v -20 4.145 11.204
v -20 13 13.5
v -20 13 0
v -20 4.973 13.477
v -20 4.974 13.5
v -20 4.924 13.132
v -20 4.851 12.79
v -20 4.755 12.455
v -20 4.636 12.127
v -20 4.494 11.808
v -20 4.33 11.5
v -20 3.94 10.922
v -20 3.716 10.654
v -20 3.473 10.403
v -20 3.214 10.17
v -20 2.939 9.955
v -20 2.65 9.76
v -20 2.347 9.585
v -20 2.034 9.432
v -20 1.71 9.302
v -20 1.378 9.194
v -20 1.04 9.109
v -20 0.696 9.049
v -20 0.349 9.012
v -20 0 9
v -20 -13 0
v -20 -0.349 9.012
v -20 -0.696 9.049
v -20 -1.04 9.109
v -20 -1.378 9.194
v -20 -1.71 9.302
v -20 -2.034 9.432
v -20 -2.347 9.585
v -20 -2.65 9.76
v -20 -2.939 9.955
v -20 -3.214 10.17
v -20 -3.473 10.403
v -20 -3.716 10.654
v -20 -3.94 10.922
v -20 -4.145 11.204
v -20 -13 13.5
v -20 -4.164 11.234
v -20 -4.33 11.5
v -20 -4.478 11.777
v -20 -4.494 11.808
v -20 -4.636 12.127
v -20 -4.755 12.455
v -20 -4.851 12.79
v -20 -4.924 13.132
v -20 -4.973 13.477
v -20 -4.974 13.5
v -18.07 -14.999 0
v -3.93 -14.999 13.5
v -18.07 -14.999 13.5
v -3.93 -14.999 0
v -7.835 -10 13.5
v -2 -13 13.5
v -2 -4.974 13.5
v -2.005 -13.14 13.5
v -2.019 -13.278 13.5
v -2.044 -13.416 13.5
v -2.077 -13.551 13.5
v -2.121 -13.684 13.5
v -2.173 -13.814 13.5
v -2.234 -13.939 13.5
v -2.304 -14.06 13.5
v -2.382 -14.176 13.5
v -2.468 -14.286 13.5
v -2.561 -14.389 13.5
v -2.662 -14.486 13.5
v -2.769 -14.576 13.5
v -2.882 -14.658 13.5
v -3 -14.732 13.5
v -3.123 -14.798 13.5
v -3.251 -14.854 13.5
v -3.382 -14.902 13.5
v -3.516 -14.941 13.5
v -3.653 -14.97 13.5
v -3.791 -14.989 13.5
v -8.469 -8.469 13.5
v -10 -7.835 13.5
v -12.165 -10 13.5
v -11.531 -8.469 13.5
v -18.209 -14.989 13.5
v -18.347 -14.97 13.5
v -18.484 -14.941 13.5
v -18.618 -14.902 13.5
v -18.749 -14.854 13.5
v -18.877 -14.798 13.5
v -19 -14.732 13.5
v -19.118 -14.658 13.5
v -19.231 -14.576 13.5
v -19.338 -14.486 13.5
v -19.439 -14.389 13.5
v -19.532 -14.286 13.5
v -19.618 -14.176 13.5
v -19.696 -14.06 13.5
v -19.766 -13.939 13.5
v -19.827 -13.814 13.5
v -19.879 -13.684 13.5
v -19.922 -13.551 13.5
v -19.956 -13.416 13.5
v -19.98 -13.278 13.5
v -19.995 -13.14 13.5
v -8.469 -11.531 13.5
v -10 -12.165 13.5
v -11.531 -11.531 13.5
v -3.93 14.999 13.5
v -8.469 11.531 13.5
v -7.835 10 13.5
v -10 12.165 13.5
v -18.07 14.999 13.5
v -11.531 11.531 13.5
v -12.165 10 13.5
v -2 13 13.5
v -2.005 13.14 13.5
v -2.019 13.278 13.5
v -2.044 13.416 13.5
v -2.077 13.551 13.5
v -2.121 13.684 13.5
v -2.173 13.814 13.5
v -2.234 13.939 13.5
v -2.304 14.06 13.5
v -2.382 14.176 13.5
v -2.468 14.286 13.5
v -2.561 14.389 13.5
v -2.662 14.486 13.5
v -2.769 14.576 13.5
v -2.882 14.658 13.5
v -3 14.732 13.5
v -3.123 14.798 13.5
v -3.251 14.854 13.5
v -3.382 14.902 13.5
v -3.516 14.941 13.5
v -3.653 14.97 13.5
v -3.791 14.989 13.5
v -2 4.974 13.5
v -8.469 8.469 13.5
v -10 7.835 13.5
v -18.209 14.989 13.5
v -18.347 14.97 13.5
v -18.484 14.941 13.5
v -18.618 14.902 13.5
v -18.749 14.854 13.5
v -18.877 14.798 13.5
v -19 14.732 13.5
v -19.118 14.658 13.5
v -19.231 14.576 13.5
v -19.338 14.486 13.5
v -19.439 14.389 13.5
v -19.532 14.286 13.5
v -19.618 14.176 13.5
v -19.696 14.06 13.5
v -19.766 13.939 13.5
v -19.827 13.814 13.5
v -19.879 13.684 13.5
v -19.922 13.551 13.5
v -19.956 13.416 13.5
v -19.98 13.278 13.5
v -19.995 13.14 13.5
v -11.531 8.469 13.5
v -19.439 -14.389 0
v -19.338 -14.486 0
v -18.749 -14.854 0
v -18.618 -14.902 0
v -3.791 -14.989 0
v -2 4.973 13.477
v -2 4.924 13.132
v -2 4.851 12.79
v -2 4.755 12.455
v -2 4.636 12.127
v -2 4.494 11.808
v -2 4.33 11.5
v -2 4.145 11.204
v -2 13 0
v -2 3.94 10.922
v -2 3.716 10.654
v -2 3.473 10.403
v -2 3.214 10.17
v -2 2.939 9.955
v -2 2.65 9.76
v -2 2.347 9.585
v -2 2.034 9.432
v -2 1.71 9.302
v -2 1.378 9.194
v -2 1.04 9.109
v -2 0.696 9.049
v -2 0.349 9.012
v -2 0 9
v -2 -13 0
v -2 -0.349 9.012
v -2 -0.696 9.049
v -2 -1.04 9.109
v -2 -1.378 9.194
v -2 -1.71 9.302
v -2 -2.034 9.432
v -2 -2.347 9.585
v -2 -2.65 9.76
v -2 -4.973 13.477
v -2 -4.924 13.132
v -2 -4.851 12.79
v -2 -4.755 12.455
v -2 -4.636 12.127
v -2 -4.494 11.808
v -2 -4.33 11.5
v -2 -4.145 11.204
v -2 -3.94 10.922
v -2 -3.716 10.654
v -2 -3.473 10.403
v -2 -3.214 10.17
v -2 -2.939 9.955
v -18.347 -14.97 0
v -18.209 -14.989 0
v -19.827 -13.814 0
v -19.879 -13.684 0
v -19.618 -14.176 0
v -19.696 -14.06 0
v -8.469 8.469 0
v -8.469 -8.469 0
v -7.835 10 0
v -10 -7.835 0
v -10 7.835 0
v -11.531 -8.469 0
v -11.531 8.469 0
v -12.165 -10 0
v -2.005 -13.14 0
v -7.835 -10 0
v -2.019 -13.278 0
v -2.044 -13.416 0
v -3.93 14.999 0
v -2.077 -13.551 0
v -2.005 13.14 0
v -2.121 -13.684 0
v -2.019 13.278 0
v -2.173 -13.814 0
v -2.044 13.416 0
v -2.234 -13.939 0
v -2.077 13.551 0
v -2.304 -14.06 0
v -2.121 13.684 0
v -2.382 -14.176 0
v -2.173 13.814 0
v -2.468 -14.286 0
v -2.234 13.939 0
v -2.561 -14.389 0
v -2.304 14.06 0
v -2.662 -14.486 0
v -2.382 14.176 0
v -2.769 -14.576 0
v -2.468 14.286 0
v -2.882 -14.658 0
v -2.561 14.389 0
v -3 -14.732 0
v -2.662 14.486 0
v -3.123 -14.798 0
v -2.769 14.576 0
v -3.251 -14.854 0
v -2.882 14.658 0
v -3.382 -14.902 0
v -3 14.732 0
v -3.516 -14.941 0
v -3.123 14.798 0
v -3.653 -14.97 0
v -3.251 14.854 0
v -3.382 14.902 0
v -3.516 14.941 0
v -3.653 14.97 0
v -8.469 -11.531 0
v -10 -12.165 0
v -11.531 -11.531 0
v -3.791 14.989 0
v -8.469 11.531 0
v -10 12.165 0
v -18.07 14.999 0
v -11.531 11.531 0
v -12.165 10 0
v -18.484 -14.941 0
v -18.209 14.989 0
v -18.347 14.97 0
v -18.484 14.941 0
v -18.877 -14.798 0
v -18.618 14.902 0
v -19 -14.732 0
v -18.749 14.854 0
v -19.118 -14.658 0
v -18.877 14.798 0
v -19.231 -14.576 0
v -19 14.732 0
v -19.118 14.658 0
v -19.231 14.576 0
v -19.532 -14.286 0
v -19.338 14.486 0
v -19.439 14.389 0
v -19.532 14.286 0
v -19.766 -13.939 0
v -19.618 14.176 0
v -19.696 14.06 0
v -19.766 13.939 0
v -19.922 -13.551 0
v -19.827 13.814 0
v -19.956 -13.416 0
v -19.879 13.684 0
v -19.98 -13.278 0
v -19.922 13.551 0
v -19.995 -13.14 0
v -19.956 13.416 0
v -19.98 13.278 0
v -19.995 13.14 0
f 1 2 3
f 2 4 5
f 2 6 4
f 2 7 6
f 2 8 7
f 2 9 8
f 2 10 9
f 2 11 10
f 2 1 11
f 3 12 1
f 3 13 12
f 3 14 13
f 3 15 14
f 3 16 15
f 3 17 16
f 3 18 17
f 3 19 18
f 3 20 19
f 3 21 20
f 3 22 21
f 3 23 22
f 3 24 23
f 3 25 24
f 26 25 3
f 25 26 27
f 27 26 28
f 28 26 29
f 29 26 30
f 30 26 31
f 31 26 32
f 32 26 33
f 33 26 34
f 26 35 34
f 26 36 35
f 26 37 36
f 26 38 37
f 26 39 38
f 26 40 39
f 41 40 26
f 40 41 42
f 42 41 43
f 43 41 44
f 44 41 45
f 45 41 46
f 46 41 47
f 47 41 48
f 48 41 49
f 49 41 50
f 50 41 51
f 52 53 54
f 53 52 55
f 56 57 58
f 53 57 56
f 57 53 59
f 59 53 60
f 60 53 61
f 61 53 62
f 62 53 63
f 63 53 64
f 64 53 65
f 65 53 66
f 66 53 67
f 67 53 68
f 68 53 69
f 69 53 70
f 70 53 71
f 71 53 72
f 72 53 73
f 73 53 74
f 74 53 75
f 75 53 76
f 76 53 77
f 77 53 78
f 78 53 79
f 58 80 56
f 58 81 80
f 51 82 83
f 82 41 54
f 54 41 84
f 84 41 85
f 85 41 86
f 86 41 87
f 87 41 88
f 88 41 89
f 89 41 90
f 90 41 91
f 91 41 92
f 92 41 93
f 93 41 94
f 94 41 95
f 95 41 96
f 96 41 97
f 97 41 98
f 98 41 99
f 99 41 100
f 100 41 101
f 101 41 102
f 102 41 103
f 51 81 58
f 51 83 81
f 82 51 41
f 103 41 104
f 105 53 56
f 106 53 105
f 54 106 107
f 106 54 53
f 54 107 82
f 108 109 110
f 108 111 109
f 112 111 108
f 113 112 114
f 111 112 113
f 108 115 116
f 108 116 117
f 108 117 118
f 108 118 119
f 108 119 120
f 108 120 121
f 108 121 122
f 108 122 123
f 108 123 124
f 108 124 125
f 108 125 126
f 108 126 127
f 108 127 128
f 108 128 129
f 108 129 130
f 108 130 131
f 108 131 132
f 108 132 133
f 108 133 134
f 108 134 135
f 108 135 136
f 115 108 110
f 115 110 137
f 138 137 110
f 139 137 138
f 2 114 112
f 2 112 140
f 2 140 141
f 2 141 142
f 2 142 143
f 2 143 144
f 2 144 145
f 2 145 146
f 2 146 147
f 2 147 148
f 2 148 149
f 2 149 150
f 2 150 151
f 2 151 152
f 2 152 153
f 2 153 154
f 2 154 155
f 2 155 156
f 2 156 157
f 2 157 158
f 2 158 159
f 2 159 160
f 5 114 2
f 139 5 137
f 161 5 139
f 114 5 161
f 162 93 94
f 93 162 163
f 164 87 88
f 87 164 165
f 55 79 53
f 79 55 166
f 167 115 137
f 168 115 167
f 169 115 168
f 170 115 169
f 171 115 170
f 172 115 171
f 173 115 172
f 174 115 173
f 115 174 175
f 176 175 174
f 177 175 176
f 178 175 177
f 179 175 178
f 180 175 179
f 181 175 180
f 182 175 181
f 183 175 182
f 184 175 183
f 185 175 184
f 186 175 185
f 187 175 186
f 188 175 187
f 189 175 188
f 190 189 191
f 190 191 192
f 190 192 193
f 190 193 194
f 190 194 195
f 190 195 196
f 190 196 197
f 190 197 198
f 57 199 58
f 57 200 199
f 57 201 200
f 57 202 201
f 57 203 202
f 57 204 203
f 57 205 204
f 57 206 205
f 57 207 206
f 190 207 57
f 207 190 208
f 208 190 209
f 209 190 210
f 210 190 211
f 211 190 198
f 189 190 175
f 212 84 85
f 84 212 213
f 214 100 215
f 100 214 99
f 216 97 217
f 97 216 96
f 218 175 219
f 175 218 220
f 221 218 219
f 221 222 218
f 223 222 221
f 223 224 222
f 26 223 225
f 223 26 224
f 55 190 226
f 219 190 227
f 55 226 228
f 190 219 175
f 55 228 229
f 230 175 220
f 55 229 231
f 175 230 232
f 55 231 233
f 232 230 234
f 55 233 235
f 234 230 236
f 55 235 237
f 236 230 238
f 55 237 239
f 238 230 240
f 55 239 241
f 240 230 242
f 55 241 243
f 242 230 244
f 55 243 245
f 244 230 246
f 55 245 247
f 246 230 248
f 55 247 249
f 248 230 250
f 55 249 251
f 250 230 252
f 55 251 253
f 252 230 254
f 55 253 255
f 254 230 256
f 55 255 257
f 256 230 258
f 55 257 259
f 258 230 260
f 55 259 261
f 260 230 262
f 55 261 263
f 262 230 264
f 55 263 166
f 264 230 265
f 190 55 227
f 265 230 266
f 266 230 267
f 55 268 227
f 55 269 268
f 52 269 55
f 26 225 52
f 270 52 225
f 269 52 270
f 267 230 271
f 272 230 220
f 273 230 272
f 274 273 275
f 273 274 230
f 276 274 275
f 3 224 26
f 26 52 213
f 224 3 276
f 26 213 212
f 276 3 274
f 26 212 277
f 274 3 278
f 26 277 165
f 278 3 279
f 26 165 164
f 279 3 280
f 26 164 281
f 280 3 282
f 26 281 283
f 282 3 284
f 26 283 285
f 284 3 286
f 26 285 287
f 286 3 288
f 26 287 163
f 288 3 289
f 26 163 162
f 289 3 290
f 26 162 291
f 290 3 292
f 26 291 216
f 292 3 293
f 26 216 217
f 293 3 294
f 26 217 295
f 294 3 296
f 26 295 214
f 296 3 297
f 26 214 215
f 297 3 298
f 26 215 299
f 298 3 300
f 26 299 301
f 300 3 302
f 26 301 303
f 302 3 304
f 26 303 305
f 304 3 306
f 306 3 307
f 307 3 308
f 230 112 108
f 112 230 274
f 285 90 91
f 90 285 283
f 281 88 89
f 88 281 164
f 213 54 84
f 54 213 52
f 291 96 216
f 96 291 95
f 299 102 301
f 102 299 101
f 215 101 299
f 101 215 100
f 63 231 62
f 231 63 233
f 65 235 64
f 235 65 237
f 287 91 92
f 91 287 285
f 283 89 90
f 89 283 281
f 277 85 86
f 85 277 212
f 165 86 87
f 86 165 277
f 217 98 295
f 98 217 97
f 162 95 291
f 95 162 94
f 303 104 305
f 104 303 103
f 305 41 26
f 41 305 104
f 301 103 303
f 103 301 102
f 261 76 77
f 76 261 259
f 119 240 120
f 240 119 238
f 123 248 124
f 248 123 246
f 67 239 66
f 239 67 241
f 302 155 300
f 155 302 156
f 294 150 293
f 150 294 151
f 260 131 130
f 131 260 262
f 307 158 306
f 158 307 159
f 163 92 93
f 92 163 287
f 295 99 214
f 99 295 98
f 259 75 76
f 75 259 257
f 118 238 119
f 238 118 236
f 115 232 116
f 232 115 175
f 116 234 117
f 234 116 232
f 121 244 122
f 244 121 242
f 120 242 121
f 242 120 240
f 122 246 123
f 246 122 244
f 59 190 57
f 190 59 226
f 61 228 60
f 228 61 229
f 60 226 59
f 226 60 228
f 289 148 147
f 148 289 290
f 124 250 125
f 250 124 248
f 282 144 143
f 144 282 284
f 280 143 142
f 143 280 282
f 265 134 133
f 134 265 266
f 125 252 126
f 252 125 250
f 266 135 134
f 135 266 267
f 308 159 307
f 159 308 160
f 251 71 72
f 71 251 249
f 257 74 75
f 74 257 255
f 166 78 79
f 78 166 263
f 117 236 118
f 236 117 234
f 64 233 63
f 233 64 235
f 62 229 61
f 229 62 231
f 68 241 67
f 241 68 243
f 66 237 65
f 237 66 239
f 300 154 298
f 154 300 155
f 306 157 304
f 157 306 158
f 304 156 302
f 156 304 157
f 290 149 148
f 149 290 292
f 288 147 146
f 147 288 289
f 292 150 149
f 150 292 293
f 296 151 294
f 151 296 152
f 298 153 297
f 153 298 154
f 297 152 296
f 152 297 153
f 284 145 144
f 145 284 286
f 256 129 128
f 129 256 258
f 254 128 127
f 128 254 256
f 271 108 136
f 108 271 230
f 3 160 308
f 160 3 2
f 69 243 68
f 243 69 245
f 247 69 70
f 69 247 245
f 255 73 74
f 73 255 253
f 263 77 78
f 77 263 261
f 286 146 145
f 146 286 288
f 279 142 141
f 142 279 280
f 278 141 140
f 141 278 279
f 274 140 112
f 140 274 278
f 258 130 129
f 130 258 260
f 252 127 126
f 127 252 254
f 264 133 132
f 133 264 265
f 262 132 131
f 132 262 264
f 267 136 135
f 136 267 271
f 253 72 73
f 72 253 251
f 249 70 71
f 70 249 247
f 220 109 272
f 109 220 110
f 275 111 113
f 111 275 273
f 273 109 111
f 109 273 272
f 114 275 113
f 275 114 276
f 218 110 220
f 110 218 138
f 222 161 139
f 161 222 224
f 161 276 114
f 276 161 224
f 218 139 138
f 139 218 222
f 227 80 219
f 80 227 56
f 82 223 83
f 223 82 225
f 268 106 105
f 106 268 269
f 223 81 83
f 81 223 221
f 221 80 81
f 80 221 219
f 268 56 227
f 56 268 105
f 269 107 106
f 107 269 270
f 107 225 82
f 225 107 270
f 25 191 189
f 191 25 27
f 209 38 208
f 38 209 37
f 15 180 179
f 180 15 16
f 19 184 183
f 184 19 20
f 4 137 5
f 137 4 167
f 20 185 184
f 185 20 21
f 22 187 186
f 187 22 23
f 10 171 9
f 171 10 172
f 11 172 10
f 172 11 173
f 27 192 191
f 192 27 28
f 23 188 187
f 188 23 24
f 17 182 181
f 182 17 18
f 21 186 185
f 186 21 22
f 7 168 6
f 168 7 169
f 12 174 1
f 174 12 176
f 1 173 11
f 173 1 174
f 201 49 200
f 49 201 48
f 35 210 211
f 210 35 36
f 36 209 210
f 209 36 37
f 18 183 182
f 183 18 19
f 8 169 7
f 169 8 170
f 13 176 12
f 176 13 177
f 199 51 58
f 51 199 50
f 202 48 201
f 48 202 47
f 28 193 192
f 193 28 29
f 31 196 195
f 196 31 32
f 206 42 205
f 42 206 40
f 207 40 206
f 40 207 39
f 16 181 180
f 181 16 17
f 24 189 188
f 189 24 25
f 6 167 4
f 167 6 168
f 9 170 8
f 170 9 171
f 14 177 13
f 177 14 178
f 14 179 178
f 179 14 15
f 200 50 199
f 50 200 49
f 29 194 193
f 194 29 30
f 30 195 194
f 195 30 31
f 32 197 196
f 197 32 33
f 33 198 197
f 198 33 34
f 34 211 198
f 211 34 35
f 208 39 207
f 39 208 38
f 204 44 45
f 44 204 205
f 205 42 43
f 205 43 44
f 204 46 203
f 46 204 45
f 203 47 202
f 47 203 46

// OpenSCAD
// file: ../polyhole.scad
// The Cylinder is dead! Long live the Cylinder!
// A module for a polyhole by radius, based on Nophead's work.

module polyhole(h, r, cent = false)
{
    n = max(round(4 * r), 3);
    cylinder(h = h, r = r / cos(180 / n), $fn = n, center = cent);
}
// main file
use<../polyhole.scad>

YBarMount();

module YBarMount()
{
    difference()
    {
        union()
        {
            hull()
            {
                translate([-18, 15-2, 0])
                    cylinder(h = 14-0.5, r = 2, $fn = 90);
                translate([-4, 15-2, 0])
                    cylinder(h = 14-0.5, r = 2, $fn = 90);
                translate([-18, -15+2, 0])
                    cylinder(h = 14-0.5, r = 2, $fn = 90);
                translate([-4, -15+2, 0])
                    cylinder(h = 14-0.5, r = 2, $fn = 90);
            }
        }
        translate([-10, 10, 0])
            polyhole(14-0.5, 2);
        translate([-10, -10, 0])
            polyhole(14-0.5, 2);
        translate([-2, 0, 14])
            rotate([0, -90, 0])
                cylinder(h = 20, r = 5, $fn = 90);
    }
}
